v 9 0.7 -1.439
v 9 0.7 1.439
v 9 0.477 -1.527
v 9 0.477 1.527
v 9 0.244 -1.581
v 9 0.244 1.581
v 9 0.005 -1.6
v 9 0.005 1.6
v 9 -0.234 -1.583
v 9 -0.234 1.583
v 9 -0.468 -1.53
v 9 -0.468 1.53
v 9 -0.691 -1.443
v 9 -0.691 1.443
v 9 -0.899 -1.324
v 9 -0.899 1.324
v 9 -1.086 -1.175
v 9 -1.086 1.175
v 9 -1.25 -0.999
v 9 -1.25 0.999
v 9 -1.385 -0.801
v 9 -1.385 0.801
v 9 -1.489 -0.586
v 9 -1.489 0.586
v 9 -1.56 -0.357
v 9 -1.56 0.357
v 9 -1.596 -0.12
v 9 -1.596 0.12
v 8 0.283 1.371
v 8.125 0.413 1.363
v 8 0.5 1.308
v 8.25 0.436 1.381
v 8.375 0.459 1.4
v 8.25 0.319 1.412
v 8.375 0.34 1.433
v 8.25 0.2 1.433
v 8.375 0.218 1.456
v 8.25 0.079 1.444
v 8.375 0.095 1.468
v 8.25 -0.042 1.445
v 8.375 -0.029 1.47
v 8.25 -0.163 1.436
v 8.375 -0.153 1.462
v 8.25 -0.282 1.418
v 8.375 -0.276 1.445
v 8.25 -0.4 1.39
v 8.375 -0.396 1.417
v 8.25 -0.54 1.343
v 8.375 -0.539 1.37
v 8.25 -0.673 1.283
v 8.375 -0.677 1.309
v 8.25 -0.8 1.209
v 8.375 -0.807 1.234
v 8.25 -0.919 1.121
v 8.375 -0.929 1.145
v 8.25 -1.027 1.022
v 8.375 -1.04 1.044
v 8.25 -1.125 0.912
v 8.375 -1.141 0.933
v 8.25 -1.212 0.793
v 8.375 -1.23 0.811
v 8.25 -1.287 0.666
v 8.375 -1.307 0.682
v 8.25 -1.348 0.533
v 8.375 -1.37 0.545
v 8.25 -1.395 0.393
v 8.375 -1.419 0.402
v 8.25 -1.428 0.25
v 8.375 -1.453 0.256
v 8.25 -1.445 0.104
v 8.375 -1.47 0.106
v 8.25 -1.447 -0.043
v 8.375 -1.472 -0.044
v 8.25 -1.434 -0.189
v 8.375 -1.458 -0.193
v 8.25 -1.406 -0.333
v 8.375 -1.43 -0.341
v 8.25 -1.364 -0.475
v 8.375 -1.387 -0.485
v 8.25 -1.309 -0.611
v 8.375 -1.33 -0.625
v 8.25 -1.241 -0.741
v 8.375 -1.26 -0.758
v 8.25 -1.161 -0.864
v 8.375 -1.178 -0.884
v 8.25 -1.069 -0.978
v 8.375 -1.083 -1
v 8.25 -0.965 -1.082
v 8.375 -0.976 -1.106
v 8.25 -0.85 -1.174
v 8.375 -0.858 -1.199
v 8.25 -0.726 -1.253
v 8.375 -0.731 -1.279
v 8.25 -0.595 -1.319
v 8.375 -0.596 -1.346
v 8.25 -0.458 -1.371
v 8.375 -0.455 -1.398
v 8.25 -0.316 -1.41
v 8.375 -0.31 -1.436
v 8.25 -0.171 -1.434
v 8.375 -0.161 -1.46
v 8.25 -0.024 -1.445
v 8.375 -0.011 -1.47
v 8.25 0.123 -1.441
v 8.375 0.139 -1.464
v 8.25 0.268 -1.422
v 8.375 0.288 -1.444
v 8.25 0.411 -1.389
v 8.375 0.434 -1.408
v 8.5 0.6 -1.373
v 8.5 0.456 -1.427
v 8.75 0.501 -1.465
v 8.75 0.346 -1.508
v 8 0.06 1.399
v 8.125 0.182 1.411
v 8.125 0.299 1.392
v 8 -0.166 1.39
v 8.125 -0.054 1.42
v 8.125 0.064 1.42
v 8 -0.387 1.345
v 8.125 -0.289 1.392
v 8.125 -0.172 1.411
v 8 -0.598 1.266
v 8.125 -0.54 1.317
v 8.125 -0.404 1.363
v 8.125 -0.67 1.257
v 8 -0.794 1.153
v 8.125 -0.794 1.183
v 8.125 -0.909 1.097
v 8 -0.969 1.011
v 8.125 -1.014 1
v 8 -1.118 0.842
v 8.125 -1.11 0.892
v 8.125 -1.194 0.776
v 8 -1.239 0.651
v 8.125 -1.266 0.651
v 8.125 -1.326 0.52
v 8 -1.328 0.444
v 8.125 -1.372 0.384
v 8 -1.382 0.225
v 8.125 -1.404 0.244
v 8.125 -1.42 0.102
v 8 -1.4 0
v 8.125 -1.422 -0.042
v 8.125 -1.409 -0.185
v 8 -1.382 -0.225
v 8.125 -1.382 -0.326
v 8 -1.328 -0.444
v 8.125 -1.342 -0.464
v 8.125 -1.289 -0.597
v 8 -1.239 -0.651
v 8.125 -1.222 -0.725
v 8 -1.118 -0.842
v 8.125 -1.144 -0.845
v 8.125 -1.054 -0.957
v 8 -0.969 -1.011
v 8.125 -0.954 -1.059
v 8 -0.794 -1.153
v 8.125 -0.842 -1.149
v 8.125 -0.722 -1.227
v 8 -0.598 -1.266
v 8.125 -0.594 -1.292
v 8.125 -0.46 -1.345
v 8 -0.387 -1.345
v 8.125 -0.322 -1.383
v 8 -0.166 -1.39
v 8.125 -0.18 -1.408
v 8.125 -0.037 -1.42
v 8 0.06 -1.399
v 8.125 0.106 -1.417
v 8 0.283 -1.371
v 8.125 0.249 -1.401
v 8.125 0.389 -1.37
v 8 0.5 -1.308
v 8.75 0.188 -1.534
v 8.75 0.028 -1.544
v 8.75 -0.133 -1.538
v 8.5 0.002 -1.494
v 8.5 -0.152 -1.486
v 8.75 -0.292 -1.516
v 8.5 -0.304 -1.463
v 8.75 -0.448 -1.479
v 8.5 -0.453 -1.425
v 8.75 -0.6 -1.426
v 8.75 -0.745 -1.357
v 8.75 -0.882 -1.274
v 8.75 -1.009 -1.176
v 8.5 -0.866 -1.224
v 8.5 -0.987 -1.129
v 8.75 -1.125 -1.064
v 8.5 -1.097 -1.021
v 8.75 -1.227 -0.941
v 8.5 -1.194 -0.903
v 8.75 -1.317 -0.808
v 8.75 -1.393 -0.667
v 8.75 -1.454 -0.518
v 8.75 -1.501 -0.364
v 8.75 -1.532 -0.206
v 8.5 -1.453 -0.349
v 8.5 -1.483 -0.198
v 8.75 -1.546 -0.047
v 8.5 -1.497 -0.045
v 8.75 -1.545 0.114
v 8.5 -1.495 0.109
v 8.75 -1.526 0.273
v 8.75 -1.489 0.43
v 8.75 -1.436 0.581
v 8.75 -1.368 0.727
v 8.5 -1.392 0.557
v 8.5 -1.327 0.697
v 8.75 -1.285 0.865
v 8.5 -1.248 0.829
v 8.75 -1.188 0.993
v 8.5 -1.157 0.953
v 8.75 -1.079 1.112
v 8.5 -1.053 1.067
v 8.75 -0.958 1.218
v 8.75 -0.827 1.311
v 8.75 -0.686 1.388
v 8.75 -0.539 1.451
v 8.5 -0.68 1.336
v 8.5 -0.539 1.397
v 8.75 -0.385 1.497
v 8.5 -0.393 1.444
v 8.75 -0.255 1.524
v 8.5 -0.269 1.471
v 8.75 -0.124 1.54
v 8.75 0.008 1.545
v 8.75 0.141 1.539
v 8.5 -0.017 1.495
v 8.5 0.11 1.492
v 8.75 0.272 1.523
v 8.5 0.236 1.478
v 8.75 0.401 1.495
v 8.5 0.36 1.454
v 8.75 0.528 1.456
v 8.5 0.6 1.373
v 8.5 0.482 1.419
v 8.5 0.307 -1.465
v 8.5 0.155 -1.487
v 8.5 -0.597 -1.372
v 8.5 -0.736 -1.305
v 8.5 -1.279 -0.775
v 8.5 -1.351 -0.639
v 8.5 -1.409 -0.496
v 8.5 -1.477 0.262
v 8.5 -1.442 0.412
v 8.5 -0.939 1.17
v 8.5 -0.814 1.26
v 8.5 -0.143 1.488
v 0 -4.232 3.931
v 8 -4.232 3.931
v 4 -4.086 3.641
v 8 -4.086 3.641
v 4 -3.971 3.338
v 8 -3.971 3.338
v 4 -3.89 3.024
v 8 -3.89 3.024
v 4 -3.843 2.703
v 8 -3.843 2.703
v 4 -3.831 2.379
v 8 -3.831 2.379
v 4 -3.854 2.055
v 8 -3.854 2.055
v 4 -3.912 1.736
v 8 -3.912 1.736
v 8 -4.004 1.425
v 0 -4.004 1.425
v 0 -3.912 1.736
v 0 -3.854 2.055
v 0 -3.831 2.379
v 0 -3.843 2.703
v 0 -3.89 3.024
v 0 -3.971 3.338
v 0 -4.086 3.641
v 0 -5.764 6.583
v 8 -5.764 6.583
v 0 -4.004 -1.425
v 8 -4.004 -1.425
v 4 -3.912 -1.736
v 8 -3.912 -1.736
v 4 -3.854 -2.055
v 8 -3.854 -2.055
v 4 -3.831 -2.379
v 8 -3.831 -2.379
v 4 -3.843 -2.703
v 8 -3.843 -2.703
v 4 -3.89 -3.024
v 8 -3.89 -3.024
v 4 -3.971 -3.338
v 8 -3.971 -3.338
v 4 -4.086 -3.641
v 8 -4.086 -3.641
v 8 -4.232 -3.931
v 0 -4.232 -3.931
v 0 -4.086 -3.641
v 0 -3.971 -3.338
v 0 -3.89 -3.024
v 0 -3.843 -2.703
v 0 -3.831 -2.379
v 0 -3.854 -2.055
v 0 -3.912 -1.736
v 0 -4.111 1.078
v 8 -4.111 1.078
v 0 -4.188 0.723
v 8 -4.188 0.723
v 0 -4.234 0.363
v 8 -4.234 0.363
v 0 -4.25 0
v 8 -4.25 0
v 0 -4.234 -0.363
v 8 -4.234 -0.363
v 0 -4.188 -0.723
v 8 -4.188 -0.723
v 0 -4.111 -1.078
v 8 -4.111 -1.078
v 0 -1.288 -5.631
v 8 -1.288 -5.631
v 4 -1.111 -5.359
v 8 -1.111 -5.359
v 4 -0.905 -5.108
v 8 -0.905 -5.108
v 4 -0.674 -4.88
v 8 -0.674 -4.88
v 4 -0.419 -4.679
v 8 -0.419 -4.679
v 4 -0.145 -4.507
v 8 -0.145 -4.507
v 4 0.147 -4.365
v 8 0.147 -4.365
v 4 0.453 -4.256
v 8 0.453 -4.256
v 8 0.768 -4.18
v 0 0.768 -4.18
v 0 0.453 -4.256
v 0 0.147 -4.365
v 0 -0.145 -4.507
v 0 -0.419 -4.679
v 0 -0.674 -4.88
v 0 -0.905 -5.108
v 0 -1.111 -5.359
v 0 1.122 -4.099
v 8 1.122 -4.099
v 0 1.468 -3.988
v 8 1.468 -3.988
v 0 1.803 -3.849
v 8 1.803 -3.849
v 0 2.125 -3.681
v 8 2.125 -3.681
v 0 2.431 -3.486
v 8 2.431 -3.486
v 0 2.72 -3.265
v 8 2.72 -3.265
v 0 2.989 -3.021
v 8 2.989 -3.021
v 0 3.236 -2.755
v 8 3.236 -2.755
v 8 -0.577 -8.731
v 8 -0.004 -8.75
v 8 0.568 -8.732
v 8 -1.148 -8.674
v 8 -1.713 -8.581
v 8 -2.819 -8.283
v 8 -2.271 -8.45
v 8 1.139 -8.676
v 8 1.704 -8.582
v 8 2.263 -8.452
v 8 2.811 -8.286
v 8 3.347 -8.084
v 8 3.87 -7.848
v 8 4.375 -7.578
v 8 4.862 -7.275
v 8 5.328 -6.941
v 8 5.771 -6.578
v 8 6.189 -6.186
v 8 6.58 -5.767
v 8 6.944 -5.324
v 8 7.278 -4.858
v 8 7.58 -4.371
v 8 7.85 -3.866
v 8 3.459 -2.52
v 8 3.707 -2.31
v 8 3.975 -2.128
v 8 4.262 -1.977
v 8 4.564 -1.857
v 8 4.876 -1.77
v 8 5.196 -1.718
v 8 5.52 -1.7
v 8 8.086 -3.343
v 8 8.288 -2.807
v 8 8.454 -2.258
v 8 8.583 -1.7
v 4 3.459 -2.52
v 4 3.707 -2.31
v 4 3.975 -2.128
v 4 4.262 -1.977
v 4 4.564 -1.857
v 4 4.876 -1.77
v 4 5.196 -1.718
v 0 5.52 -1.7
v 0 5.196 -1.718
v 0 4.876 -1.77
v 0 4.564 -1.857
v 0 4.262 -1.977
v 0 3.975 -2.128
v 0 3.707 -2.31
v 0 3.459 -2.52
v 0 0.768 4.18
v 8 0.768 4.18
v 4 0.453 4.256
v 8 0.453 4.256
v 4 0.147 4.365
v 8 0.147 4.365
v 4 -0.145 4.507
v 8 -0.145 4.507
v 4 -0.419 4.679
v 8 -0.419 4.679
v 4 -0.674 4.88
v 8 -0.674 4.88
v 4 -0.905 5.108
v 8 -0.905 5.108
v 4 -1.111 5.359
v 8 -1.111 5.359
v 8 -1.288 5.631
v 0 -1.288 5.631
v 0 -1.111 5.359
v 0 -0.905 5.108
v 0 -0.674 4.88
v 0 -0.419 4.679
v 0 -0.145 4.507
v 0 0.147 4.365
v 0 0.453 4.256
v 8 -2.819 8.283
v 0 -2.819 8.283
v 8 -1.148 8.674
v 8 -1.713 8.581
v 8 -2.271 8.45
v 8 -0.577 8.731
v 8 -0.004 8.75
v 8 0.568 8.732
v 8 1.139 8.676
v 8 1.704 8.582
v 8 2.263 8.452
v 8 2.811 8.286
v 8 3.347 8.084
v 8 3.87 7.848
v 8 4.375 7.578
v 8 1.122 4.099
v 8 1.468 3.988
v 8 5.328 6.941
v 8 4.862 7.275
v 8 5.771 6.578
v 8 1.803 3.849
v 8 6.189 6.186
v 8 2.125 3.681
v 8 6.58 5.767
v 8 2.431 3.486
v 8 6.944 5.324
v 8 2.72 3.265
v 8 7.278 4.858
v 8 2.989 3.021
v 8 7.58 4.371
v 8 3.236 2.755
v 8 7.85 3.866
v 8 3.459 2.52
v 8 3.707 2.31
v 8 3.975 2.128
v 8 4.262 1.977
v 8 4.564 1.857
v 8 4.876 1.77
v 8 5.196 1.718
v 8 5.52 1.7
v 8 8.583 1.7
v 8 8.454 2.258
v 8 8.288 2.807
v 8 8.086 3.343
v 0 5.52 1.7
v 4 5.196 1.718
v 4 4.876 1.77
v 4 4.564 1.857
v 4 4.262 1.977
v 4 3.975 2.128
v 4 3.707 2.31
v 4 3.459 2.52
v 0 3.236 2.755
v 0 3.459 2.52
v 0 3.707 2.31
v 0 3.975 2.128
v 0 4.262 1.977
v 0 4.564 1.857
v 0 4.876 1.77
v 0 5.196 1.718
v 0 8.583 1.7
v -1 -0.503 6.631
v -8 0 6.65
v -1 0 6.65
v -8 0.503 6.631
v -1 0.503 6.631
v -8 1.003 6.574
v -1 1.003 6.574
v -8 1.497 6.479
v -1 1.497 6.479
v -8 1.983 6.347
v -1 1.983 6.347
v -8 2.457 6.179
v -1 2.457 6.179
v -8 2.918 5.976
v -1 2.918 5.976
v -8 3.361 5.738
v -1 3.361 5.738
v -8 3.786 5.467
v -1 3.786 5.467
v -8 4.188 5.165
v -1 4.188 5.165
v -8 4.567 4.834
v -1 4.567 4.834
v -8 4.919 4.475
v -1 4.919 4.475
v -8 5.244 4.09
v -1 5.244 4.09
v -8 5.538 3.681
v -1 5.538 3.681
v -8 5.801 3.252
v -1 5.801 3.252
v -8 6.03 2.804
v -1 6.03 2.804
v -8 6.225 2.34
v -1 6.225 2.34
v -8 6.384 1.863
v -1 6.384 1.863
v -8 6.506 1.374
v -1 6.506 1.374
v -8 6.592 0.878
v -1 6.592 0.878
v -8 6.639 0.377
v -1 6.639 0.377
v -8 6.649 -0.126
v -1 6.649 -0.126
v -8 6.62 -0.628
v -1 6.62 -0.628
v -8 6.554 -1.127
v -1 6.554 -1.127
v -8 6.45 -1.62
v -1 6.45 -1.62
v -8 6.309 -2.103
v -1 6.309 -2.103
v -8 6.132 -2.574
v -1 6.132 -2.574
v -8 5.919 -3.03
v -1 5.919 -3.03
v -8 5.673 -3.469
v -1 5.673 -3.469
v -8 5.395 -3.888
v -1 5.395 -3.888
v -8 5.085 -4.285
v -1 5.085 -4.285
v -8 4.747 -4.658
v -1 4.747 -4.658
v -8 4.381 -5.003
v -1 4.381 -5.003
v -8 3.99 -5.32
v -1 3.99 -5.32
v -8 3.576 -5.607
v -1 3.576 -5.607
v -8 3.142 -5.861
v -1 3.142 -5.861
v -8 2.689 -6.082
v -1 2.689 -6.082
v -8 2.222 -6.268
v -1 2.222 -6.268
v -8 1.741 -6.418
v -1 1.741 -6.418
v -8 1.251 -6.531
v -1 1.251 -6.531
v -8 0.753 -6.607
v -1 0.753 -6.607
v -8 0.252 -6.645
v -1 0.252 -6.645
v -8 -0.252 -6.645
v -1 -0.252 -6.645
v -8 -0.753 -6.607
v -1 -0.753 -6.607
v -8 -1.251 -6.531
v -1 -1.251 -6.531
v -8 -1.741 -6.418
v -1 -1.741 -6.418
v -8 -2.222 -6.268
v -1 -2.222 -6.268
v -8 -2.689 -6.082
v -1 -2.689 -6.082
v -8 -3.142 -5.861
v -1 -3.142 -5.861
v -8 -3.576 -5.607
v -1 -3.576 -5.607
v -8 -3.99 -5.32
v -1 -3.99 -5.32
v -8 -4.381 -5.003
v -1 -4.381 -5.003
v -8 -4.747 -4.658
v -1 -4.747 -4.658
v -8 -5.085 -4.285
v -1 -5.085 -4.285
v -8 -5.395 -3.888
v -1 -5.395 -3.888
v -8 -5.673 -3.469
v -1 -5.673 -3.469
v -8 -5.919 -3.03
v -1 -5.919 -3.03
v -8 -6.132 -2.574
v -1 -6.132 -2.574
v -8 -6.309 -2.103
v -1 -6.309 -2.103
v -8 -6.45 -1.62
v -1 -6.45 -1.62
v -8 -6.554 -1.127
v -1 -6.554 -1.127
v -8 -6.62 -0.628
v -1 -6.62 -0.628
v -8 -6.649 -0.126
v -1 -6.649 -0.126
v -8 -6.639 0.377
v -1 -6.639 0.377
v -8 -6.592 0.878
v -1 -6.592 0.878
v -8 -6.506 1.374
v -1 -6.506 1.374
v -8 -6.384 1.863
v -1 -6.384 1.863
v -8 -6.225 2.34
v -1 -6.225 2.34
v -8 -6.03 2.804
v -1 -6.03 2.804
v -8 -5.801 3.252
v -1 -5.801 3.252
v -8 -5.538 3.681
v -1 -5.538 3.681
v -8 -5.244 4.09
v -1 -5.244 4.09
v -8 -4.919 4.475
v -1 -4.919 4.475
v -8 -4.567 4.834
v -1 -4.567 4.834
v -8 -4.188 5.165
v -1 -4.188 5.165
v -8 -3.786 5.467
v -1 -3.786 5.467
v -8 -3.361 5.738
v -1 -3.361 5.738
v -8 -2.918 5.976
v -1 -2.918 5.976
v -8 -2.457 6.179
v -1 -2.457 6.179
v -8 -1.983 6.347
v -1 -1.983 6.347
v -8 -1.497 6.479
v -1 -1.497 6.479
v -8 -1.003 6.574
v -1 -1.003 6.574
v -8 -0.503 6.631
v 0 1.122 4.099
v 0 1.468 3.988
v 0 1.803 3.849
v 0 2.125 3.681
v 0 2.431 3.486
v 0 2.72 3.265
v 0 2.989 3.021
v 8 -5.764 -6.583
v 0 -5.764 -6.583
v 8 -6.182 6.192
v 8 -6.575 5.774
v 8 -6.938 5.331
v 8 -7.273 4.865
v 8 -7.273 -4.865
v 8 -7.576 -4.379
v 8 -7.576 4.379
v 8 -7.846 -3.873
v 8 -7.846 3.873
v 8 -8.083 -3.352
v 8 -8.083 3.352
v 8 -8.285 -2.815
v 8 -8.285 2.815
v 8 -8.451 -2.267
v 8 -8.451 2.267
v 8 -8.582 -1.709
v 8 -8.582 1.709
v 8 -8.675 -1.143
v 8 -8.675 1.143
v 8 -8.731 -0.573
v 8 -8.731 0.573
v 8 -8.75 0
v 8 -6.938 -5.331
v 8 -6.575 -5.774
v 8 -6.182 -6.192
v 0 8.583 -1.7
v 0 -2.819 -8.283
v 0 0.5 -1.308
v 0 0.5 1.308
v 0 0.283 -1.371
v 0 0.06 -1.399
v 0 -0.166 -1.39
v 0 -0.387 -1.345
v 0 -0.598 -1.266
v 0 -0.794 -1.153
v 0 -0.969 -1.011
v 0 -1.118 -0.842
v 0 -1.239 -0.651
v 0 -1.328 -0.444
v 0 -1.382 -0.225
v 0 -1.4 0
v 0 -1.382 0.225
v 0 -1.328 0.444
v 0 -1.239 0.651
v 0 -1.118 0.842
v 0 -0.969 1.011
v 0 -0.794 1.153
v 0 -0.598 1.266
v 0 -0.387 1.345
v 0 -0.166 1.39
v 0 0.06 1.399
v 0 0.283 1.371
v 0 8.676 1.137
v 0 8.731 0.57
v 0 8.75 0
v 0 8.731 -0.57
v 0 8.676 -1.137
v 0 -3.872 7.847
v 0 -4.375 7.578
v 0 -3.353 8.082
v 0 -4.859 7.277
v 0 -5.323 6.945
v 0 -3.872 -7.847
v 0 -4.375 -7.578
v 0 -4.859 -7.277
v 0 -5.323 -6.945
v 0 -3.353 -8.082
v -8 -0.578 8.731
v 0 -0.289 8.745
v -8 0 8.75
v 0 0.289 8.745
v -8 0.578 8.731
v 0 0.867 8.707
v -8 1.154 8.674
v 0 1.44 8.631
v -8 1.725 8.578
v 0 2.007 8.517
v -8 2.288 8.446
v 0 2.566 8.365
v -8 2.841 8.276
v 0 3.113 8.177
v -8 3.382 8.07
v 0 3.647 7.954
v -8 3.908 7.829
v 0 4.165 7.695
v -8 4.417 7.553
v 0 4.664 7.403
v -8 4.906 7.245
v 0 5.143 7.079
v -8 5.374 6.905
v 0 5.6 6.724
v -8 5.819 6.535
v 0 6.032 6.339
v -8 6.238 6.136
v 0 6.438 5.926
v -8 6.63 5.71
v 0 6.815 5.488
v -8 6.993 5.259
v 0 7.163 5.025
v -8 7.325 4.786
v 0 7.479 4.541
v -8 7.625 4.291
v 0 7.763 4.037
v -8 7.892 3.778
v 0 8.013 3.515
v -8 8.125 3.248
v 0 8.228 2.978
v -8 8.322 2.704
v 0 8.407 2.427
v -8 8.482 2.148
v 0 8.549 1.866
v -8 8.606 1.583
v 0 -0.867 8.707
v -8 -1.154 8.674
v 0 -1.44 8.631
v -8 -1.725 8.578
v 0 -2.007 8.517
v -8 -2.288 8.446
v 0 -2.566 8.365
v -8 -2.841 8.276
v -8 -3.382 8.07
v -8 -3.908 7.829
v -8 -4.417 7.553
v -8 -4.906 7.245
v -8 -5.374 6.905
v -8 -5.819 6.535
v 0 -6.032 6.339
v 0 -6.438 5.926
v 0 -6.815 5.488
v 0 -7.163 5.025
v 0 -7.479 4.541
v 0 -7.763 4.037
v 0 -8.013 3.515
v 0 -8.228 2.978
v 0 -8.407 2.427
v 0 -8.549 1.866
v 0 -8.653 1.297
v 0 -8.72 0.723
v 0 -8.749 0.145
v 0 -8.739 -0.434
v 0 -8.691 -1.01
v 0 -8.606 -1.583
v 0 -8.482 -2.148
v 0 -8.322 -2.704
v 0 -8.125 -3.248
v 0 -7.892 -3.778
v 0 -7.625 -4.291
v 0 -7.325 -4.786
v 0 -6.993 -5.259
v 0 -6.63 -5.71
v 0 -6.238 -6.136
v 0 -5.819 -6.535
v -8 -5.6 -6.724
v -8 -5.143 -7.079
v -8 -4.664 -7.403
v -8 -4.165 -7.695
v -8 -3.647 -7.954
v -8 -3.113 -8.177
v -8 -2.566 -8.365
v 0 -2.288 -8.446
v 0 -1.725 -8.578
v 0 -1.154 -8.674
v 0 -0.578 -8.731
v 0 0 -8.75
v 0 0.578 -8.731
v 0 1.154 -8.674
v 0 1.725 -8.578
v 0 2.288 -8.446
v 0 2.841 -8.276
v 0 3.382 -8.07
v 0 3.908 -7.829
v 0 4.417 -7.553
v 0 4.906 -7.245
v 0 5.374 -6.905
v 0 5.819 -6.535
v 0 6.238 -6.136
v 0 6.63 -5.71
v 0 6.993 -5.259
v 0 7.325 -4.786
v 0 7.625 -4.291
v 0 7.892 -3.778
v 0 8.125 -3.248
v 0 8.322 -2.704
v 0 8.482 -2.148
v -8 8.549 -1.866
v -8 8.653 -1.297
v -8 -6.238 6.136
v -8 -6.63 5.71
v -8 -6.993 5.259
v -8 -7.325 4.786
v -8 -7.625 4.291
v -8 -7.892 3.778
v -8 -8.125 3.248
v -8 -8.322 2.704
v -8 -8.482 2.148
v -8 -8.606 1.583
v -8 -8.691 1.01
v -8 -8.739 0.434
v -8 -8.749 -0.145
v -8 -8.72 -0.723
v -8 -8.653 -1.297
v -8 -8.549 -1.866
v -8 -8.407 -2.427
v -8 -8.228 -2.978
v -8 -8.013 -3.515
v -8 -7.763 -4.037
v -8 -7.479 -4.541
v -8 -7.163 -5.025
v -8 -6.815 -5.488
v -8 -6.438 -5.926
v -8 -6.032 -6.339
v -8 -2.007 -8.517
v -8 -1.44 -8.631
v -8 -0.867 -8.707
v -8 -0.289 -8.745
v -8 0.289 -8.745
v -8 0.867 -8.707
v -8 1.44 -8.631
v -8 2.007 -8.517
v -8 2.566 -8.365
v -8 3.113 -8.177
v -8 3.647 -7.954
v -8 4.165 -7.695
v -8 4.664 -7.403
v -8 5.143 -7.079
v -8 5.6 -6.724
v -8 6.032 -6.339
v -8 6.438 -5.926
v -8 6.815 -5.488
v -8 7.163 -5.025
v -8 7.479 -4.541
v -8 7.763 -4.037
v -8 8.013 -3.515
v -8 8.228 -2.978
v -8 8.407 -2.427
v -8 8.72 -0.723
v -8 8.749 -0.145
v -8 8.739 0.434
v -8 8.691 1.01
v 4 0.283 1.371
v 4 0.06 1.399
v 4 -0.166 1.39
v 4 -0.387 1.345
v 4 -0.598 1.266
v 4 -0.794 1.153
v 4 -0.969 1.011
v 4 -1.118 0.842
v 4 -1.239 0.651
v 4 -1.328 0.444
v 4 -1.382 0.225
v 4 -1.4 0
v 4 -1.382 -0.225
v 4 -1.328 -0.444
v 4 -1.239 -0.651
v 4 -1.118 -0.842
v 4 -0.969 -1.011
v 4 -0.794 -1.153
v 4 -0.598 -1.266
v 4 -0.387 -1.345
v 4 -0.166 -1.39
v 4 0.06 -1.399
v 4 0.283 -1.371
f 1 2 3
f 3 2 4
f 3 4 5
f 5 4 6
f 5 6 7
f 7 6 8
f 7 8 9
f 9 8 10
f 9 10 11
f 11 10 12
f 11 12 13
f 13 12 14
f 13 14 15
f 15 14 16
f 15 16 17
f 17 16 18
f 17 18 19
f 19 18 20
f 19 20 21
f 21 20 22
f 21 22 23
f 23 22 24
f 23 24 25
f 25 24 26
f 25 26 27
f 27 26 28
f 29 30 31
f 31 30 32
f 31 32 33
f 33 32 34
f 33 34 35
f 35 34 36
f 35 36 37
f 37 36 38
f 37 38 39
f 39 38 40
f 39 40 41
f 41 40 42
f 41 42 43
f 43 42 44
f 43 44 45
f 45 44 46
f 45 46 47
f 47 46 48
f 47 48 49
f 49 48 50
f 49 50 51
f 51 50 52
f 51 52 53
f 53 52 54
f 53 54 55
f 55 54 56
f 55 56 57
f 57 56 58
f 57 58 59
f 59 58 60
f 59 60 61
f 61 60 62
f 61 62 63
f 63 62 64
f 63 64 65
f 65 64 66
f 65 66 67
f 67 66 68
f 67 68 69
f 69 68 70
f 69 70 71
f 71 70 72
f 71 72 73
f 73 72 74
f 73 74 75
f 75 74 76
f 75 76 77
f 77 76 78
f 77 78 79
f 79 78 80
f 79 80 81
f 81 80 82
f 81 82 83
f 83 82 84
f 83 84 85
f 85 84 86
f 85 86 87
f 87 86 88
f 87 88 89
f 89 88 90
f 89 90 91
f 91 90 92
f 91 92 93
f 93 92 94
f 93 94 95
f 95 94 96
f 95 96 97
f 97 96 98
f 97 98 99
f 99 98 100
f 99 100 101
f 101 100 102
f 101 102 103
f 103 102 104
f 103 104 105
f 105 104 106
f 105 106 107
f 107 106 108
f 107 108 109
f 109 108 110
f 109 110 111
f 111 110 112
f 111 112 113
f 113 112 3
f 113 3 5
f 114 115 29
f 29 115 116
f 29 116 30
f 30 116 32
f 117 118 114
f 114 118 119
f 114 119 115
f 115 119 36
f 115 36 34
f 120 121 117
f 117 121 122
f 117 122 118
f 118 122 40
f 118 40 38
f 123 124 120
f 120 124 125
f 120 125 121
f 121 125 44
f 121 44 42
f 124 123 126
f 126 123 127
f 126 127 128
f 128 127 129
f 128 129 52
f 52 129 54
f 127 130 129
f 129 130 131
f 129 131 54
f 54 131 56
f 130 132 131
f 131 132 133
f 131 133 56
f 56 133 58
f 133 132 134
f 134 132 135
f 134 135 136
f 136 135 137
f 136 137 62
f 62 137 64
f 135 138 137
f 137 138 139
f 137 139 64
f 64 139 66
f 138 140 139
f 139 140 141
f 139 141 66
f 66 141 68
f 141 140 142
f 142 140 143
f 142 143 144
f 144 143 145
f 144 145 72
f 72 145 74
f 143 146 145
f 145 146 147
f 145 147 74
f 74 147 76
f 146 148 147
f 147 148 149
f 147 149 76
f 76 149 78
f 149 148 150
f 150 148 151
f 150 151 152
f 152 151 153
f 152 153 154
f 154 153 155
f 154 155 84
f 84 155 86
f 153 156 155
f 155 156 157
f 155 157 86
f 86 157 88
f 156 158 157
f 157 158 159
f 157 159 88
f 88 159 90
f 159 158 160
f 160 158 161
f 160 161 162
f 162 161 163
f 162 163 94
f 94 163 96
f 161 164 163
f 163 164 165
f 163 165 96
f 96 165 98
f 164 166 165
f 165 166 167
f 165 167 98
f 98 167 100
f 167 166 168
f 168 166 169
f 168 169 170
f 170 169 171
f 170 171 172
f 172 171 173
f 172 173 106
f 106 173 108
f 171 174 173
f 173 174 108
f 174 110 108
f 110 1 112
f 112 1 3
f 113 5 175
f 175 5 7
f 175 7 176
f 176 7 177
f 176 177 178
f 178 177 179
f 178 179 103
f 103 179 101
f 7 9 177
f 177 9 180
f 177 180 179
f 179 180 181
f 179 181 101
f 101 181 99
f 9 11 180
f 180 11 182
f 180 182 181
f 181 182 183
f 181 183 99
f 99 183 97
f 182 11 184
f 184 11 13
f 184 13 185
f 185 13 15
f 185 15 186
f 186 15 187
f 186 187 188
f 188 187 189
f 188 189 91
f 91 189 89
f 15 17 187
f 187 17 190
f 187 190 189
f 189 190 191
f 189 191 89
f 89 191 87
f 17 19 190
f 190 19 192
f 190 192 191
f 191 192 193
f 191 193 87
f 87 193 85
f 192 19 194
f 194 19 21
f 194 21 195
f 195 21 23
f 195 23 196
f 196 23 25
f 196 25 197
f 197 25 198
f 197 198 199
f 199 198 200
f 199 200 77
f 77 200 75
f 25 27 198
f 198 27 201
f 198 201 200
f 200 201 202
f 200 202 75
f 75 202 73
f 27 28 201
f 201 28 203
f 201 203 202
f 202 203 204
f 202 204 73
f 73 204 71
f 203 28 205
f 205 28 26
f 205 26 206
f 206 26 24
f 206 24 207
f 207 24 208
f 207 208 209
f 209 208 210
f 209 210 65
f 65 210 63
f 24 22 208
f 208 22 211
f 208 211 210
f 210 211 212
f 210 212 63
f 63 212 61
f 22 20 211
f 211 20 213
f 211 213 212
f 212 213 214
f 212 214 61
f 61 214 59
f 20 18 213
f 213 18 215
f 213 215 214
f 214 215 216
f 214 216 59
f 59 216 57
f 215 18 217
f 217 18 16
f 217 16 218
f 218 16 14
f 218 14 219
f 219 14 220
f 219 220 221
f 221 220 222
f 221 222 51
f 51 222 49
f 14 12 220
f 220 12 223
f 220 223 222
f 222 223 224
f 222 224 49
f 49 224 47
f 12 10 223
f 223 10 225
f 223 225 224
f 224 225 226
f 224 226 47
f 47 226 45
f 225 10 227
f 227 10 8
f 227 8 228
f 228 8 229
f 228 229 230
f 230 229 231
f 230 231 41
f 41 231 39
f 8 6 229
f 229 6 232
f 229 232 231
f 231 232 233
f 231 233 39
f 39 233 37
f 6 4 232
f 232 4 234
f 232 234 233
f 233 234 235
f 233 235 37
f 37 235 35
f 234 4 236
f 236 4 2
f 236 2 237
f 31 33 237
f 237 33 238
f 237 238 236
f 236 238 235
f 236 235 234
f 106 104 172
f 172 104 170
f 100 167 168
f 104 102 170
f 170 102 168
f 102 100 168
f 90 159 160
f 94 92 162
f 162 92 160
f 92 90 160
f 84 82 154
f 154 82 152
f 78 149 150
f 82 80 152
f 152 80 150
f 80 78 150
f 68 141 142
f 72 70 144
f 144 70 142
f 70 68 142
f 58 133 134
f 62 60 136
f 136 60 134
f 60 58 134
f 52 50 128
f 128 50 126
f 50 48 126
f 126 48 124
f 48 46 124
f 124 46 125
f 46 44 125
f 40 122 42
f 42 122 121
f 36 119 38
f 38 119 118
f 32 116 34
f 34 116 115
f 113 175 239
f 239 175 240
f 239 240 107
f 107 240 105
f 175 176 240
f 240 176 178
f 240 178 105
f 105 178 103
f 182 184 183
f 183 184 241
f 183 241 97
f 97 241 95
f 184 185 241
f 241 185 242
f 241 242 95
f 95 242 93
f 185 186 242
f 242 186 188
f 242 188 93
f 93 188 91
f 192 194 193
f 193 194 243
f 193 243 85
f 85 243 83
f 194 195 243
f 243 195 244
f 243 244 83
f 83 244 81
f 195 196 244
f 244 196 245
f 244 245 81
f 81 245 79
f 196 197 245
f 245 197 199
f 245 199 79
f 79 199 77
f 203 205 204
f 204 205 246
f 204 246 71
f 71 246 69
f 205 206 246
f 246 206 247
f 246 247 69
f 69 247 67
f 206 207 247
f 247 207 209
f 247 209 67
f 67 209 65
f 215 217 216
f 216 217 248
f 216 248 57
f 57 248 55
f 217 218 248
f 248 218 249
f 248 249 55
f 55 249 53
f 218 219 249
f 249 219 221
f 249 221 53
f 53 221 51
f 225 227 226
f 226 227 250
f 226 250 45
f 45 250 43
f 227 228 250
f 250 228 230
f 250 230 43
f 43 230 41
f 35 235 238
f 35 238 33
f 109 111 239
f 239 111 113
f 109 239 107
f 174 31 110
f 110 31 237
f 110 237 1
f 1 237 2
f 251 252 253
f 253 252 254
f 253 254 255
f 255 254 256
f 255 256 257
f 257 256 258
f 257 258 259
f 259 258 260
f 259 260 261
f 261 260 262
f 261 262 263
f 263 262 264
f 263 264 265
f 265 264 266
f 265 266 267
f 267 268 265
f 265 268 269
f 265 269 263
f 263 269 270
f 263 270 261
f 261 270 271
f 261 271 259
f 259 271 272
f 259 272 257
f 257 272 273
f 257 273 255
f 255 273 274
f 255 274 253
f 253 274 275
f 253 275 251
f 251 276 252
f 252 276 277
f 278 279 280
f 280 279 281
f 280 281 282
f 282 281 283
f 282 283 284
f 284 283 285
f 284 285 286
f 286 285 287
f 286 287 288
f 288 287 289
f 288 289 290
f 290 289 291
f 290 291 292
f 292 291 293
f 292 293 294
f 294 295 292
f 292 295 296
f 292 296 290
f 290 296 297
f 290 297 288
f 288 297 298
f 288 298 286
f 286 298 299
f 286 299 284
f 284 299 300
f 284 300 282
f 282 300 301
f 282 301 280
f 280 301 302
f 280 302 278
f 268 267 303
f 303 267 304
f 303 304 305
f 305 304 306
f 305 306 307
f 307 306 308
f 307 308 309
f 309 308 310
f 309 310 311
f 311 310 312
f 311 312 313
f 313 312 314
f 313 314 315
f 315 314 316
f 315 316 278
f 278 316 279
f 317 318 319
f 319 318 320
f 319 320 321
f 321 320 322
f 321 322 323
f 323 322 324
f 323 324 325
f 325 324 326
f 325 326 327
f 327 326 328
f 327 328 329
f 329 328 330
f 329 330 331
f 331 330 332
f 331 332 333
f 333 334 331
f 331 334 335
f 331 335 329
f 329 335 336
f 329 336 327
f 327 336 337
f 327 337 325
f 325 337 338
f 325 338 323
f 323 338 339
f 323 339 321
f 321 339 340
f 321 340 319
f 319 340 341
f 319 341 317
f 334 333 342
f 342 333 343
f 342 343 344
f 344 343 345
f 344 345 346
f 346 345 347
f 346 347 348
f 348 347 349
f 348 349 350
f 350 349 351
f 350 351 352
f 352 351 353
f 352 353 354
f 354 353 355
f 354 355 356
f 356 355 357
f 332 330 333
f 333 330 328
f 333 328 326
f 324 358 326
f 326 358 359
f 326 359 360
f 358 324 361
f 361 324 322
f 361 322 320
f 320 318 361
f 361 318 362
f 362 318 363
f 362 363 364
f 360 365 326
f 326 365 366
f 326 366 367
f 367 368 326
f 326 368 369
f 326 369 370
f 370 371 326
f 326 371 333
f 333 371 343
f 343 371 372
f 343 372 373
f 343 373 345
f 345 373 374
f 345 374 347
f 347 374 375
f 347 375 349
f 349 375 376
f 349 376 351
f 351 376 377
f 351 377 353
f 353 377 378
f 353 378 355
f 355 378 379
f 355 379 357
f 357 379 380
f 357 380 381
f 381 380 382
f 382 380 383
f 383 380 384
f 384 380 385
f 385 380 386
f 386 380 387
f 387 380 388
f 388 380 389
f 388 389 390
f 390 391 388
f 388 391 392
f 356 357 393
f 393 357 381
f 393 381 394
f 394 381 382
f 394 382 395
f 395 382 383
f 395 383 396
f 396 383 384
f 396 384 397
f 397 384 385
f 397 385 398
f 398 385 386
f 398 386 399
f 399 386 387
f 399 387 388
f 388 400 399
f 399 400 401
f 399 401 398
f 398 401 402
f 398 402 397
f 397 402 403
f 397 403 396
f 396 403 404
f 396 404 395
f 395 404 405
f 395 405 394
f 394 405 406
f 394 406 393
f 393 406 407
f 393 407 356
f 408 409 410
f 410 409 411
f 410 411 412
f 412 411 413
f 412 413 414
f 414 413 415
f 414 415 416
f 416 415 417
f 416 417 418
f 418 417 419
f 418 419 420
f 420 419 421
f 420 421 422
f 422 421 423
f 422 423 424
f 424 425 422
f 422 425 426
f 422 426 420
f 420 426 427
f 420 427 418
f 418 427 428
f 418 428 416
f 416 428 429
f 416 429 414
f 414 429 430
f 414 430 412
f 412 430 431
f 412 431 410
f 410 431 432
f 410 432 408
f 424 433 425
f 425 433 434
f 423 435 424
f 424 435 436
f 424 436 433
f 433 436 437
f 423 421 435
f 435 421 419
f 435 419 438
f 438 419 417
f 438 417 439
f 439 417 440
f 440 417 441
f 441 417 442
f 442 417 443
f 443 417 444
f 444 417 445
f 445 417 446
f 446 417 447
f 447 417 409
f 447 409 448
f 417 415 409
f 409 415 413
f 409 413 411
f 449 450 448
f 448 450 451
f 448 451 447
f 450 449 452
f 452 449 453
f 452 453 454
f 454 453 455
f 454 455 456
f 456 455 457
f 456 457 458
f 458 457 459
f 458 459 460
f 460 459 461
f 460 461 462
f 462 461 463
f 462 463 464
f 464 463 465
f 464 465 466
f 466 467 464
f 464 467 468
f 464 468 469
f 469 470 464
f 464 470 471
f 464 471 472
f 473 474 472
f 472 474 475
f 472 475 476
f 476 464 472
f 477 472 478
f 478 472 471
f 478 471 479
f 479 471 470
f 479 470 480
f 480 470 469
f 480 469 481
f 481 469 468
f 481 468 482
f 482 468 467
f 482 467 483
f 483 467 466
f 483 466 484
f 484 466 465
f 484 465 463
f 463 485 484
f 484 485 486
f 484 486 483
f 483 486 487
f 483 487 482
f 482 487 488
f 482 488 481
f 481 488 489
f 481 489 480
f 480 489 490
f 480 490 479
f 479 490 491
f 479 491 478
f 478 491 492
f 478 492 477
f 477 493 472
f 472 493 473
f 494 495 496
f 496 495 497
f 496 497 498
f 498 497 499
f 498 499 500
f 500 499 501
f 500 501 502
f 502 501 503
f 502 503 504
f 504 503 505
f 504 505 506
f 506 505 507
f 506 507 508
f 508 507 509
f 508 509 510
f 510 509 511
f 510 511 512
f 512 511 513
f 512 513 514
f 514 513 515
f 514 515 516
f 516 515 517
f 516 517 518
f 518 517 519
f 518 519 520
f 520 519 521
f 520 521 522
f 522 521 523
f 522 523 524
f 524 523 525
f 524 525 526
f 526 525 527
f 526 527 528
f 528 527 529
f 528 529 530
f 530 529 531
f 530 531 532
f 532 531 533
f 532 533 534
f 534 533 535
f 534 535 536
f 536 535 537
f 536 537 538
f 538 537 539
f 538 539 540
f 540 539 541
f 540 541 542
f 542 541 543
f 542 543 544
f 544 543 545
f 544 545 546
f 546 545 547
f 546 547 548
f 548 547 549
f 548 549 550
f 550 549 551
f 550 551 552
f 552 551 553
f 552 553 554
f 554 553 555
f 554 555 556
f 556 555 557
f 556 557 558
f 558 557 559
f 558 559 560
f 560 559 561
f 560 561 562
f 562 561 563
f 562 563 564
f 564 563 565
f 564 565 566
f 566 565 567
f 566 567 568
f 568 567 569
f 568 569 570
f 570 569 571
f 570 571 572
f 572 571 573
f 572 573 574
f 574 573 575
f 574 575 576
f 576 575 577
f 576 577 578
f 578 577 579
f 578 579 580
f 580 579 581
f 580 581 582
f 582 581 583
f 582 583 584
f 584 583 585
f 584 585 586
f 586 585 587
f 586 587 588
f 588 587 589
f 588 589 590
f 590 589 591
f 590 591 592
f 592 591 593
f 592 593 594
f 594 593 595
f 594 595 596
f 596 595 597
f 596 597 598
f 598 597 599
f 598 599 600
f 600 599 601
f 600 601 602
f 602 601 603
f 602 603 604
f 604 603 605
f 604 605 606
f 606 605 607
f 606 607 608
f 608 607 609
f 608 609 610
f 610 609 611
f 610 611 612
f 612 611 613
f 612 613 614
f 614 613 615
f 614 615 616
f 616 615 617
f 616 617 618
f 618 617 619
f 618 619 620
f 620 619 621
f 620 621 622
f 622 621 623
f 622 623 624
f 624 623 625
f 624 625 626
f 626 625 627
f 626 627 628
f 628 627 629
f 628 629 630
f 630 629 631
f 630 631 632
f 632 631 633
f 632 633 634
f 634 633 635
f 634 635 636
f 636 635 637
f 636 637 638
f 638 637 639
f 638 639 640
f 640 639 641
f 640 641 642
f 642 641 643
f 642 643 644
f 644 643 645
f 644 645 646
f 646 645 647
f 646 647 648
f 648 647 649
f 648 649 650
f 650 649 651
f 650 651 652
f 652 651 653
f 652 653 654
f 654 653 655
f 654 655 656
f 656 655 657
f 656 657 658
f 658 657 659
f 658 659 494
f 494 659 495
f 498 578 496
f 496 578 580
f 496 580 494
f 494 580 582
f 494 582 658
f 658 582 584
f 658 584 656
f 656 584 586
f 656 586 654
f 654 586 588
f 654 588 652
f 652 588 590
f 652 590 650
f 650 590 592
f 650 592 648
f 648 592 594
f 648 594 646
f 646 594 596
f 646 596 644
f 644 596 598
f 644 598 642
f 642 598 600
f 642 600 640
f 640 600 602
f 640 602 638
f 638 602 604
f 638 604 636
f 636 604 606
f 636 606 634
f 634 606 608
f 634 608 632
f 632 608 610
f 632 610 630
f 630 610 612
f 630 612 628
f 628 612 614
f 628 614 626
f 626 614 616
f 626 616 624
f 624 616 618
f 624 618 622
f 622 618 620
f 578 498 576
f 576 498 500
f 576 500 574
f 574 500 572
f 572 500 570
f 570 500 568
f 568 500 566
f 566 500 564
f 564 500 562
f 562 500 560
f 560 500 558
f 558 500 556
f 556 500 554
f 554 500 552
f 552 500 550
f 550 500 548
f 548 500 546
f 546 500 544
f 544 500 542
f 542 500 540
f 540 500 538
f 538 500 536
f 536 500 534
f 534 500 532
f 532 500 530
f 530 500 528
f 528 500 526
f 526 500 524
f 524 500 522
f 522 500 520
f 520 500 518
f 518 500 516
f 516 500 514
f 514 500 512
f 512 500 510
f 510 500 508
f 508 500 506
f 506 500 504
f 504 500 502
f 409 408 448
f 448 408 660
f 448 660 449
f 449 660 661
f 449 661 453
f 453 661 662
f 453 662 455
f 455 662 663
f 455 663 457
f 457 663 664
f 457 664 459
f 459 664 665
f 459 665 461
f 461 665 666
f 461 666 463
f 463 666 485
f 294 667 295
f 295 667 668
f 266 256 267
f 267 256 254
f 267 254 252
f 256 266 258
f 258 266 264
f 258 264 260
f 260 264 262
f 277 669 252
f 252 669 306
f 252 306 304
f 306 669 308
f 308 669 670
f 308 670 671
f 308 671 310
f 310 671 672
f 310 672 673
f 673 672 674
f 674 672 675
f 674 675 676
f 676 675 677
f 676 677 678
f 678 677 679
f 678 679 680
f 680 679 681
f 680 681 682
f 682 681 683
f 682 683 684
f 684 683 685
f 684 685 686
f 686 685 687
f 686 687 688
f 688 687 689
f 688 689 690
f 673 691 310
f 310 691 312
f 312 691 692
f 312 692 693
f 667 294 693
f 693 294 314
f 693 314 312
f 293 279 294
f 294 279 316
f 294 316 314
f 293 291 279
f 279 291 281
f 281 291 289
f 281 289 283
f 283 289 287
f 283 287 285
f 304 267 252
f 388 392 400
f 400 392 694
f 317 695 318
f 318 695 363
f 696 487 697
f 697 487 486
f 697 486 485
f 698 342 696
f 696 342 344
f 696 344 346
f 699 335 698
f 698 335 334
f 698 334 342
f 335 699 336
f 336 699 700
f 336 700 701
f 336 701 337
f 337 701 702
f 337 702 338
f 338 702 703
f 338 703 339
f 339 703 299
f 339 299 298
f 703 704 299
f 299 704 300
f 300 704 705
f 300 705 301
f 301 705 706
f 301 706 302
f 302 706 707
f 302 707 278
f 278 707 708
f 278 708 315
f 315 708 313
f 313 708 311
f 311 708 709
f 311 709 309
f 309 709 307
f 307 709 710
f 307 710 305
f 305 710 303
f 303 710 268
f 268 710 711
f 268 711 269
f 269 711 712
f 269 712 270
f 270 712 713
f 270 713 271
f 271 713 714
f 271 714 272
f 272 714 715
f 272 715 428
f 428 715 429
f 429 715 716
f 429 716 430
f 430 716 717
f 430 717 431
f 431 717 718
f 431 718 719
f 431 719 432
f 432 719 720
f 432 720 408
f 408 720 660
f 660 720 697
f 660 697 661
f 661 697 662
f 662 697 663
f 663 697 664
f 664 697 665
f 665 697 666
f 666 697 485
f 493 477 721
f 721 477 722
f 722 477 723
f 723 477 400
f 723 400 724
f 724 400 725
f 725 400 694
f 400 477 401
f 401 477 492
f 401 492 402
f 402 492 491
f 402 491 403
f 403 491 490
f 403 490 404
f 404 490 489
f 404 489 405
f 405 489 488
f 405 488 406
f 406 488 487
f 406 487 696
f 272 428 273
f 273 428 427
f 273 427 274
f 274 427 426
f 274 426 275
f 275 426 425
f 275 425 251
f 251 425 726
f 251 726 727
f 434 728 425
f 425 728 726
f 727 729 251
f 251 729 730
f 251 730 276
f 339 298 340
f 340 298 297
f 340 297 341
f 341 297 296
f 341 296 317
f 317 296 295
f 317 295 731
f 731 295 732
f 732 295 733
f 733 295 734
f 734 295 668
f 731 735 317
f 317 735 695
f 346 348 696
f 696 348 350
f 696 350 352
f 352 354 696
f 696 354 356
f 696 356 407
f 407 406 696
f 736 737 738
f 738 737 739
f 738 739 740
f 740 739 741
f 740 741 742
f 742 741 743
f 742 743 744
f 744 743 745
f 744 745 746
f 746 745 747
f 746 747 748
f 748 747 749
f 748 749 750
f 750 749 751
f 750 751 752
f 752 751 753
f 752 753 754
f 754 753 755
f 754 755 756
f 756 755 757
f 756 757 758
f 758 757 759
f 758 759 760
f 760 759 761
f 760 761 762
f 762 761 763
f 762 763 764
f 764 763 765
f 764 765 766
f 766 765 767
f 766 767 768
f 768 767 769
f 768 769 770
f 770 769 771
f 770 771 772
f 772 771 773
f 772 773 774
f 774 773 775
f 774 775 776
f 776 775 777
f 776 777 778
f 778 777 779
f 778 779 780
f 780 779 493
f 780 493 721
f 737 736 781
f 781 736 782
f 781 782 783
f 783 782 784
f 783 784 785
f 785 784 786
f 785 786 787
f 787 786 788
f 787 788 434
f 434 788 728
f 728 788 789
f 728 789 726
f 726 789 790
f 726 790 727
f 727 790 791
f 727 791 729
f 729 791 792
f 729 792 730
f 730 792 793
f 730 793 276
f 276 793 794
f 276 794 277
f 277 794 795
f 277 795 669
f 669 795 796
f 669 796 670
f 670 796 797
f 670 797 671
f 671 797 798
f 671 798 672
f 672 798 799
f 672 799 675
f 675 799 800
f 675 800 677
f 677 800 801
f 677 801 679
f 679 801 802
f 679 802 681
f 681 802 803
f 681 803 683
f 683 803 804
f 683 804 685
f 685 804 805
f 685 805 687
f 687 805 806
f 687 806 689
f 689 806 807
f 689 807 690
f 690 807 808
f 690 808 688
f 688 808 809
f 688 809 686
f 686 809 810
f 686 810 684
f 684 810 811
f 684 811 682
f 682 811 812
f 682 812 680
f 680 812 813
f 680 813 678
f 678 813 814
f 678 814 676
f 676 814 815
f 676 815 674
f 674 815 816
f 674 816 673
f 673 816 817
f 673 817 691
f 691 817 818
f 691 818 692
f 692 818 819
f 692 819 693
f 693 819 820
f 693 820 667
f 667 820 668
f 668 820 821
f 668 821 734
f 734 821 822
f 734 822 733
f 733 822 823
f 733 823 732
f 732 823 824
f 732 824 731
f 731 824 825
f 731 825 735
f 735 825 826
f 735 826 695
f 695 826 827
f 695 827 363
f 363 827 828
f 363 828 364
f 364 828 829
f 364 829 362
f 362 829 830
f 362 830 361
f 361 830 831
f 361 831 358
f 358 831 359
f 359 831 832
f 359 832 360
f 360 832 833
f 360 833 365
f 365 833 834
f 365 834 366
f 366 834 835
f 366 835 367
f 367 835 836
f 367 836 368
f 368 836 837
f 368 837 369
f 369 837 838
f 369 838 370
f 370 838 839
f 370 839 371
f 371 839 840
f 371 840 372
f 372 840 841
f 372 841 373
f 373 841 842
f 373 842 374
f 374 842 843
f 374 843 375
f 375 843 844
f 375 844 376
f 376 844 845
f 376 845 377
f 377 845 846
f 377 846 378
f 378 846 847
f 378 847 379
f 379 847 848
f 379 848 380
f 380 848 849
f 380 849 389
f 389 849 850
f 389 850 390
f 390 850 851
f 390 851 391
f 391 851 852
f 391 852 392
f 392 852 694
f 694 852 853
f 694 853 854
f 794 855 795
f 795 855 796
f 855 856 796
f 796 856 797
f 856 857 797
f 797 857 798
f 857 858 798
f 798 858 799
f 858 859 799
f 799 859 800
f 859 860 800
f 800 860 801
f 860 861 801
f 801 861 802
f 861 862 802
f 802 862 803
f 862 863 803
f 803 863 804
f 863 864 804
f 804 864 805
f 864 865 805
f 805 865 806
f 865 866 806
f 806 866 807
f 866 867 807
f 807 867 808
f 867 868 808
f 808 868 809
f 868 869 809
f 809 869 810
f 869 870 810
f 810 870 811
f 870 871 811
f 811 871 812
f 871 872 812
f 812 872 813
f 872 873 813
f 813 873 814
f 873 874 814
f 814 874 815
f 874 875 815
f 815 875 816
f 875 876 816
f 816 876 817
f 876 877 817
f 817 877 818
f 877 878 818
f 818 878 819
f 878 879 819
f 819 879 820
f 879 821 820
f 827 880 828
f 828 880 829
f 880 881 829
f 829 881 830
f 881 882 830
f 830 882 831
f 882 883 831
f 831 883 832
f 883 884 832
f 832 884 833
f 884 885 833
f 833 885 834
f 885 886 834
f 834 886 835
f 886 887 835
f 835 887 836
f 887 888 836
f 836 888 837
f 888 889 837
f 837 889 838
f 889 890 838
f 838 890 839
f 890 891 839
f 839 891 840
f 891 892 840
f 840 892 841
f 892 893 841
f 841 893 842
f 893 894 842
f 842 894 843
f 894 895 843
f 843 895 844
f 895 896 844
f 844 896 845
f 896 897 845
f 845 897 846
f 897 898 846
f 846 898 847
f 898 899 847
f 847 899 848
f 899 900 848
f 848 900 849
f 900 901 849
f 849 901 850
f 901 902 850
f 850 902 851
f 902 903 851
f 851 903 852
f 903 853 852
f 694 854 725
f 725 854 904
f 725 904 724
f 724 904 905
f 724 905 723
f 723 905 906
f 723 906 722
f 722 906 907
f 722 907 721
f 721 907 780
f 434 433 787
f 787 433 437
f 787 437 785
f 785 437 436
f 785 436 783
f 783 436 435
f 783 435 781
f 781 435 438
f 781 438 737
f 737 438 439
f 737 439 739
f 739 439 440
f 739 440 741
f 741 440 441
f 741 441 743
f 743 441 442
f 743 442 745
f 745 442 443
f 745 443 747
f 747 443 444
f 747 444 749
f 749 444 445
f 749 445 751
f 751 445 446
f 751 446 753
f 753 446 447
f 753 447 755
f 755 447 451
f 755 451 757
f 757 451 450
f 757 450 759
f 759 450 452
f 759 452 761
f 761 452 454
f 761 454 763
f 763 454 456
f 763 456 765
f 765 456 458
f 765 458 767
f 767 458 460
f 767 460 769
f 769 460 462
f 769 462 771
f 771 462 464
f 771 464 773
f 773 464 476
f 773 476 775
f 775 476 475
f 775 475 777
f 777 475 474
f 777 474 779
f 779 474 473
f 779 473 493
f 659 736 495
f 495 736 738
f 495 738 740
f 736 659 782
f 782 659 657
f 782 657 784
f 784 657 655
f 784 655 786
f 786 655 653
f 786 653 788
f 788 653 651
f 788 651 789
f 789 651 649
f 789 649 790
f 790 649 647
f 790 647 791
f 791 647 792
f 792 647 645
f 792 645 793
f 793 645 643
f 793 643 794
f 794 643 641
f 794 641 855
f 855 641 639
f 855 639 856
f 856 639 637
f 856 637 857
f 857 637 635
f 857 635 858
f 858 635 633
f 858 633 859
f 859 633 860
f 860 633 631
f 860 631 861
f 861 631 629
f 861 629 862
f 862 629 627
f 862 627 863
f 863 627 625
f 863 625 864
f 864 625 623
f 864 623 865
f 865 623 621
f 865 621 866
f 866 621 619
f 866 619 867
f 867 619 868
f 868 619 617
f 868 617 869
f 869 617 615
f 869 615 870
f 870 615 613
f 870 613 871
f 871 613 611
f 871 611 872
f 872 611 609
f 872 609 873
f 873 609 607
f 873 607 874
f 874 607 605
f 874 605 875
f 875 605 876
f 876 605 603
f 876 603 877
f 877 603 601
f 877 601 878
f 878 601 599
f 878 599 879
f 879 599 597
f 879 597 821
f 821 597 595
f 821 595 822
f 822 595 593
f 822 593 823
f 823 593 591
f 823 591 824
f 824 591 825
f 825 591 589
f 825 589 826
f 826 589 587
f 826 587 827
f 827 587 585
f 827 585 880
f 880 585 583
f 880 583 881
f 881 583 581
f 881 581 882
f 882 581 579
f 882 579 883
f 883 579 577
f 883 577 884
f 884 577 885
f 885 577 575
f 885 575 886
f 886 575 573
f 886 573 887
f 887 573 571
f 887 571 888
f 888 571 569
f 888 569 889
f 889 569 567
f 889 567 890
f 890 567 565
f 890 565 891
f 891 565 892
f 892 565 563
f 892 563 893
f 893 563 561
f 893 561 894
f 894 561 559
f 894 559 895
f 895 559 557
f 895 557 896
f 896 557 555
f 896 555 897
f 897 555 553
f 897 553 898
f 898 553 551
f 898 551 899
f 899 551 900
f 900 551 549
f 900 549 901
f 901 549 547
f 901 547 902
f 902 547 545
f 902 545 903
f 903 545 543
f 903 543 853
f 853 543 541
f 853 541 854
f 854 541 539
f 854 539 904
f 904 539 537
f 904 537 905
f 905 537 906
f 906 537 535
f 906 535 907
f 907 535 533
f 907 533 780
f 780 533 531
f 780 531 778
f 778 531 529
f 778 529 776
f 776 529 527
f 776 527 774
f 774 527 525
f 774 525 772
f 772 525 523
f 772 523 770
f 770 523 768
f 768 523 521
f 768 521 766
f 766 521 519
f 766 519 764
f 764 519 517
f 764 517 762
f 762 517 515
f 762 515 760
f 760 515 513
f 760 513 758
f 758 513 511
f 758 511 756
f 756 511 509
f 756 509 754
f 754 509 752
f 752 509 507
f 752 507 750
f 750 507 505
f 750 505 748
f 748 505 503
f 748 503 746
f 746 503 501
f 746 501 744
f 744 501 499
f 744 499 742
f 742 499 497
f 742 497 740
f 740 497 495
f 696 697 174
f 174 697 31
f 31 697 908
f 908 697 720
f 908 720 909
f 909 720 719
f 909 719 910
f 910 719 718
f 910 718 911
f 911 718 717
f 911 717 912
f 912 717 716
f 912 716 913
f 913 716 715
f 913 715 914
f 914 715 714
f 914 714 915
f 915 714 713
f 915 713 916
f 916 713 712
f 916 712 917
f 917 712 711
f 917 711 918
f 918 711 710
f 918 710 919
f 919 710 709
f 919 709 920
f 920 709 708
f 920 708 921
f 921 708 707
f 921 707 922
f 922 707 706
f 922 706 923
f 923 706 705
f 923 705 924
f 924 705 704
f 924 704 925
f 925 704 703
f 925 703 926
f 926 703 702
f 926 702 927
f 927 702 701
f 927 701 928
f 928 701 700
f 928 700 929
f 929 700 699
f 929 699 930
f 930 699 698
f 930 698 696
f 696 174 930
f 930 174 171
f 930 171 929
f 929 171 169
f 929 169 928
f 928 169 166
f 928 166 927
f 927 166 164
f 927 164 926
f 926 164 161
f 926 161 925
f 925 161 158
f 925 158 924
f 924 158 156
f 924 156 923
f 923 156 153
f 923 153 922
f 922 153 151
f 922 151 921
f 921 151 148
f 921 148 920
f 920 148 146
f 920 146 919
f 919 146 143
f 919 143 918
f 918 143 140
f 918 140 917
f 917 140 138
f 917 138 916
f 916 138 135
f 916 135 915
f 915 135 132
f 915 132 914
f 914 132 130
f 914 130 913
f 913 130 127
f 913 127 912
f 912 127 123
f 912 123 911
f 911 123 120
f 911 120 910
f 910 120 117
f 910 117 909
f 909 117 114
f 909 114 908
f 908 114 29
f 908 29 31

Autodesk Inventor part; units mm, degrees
ref_plane "YZ Plane" through (0, 0, 0) normal (1, 0, 0) x (0, 1, 0)
ref_plane "XZ Plane" through (0, 0, 0) normal (0, 1, 0) x (-1, 0, 0)
sketch "Sketch1" plane through (0, 0, 0) normal (1, 0, 0) x (0, 1, 0)
  circle A0 centre (0, 0) radius 1.4
  line L0 (0.5, 1.30767) -> (0.5, -1.30767)
  dimension "d1" = 2.8
  dimension "d2" = 0.5
extrude "Extrusion1" add sketch "Sketch1" along normal blind 8 contours L0 A0 picked at (-0.62029, 0.295862)
sketch "Sketch2" plane through (0, 0, 0) normal (-1, 0, 0) x (0, 0, 1)
  circle A0 centre (0, 0) radius 8.75
  arc A1 (-1.30767, 0.5) -> (1.30767, 0.5) centre (0, 0) ccw
  dimension "d5" = 17.5
extrude "Extrusion2" add sketch "Sketch2" along normal blind 8
sketch "Sketch3" plane through (0, 0, 0) normal (1, 0, 0) x (0, 1, 0)
  circle A0 centre (0, 0) radius 4.25
  line L0 (4, 1.7) -> (8.583269, 1.7)
  line L1 (4, -1.7) -> (8.583269, -1.7)
  line L2 (-10.5, 0) -> (10.5, 0)
  circle A1 centre (0, 0) radius 8.75
  line L3 (0.5, -1.30767) -> (0.5, 1.30767)
  arc A2 (0.5, 1.30767) -> (0.5, -1.30767) centre (0, 0) ccw
  arc A3 (3.852905, 1.793773) -> (4, 1.7) centre (4, 1.862255) ccw
  arc A4 (4, -1.7) -> (3.852905, -1.793773) centre (4, -1.862255) ccw
  line L4 (-3.472243, 2.614102) -> (-5.763877, 6.583329)
  line L5 (-0.527757, 4.314102) -> (-2.819391, 8.283329)
  arc A5 (-0.527757, 4.314102) -> (-0.373, 4.2336) centre (-0.38724, 4.395229) ccw
  arc A6 (-3.479906, 2.439827) -> (-3.472243, 2.614102) centre (-3.61276, 2.532974) ccw
  line L6 (-0.527757, -4.314102) -> (-2.819391, -8.283329)
  line L7 (-3.472243, -2.614102) -> (-5.763877, -6.583329)
  arc A7 (-3.472243, -2.614102) -> (-3.479906, -2.439827) centre (-3.61276, -2.532974) ccw
  arc A8 (-0.373, -4.2336) -> (-0.527757, -4.314102) centre (-0.38724, -4.395229) ccw
  arc A9 (0.5, 1.30767) -> (0.5, -1.30767) centre (0, 0) ccw
  circle A10 centre (0, 0) radius 5
  line L8 (4, 1.7) -> (3.895189, 1.7)
  line L9 (4, -1.7) -> (3.840573, -1.7)
  line L10 (-0.527757, -4.314102) -> (-0.475351, -4.223333)
  line L11 (-3.472243, -2.614102) -> (-3.419838, -2.523333)
  line L12 (-3.472243, 2.614102) -> (-3.419838, 2.523333)
  line L13 (-0.527757, 4.314102) -> (-0.475351, 4.223333)
  point P0 (-3.479906, -2.439827)
  point P1 (-4.25, 0)
  point P2 (-8.75, 0)
  point P3 (-0.373, -4.2336)
  point P4 (-2.819391, -8.283329)
  point P5 (-0.373, 4.2336)
  point P6 (-2.819391, 8.283329)
  point P7 (-3.479906, 2.439827)
  point P8 (3.895189, -1.7)
  dimension "d8" = 8.5
  dimension "d9" = 3.4
  dimension "d10" = 4
  dimension "d14" = 360
  dimension "d22" = 10
extrude "Extrusion3" add sketch "Sketch3" along normal blind 8 contours A0 A3 L8 | L9 A4 A0 | A0 A5 L5 A10 L0 A3 | A4 L1 A10 L6 A8 A0 | A10 L5 A1 L0 | L1 A1 L6 A10 | A0 L13 A5 | A8 L10 A0 | L2 A10 L4 A6 A0 | A0 A7 L7 A10 L2 | A10 L2 A1 L4 | L7 A1 L2 A10 | A6 L12 A0 | A0 L11 A7
sketch "Sketch4" plane through (-8, 0, 0) normal (-1, 0, 0) x (0, 0, 1)
  circle A0 centre (0, 0) radius 6.65
  dimension "d19" = 13.3
extrude "Extrusion4" cut sketch "Sketch4" against normal blind 7
fillet "Fillet1" radius 3 6 edges at (4, 3.8952, 1.7) (4, -0.4754, 4.2233) (4, 3.8952, -1.7) (4, -0.4754, -4.2233) (4, -3.4198, -2.5233) (4, -3.4198, 2.5233)
sketch "Sketch5" plane through (-1, 0, 0) normal (-1, 0, 0) x (0, 0, 1)
  circle A0 centre (0, 0) radius 2.5
  dimension "d24" = 5
extrude "Extrusion5" [suppressed]
sketch "Sketch6" plane through (-22, 0, 0) normal (-1, 0, 0) x (0, 0, 1)
  arc A0 (-1.2, 0.5) -> (1.2, 0.5) centre (0, 0) ccw projected
  circle A1 centre (0, 0) radius 2.5 projected
ref_plane "Work Plane1" through (9, 0, 0) normal (1, 0, 0) x (0, 0, -1)
sketch "Sketch7" plane through (9, 0, 0) normal (1, 0, 0) x (0, 0, -1)
  arc A0 (-1.30767, 0.5) -> (1.30767, 0.5) centre (0, 0) ccw
  line L0 (1.30767, 0.5) -> (-1.30767, 0.5)
  circle A1 centre (0, 0) radius 1.6
  line L1 (-1.438749, 0.7) -> (1.438749, 0.7)
  dimension "d28" = 3.2
  dimension "d30" = 0.5
  dimension "d31" = 0.7
sketch "Sketch8" plane through (8, 0, 0) normal (1, 0, 0) x (0, 0, -1)
  arc A0 (-1.30767, 0.5) -> (1.30767, 0.5) centre (0, 0) ccw
  line L0 (1.30767, 0.5) -> (-1.30767, 0.5)
sketch "Sketch7 outline for Loft1" plane through (9, 0, 0) normal (1, 0, 0) x (0, 0, -1)
  line L0 (1.438749, 0.7) -> (-1.438749, 0.7)
  arc A0 (-1.438749, 0.7) -> (1.438749, 0.7) centre (0, 0) ccw
loft "Loft1" add profiles "Sketch7 outline for Loft1" section 1 edges at (8, -1.4, 0) (8, 0.5, 0)
properties part number "front wheel mount"
